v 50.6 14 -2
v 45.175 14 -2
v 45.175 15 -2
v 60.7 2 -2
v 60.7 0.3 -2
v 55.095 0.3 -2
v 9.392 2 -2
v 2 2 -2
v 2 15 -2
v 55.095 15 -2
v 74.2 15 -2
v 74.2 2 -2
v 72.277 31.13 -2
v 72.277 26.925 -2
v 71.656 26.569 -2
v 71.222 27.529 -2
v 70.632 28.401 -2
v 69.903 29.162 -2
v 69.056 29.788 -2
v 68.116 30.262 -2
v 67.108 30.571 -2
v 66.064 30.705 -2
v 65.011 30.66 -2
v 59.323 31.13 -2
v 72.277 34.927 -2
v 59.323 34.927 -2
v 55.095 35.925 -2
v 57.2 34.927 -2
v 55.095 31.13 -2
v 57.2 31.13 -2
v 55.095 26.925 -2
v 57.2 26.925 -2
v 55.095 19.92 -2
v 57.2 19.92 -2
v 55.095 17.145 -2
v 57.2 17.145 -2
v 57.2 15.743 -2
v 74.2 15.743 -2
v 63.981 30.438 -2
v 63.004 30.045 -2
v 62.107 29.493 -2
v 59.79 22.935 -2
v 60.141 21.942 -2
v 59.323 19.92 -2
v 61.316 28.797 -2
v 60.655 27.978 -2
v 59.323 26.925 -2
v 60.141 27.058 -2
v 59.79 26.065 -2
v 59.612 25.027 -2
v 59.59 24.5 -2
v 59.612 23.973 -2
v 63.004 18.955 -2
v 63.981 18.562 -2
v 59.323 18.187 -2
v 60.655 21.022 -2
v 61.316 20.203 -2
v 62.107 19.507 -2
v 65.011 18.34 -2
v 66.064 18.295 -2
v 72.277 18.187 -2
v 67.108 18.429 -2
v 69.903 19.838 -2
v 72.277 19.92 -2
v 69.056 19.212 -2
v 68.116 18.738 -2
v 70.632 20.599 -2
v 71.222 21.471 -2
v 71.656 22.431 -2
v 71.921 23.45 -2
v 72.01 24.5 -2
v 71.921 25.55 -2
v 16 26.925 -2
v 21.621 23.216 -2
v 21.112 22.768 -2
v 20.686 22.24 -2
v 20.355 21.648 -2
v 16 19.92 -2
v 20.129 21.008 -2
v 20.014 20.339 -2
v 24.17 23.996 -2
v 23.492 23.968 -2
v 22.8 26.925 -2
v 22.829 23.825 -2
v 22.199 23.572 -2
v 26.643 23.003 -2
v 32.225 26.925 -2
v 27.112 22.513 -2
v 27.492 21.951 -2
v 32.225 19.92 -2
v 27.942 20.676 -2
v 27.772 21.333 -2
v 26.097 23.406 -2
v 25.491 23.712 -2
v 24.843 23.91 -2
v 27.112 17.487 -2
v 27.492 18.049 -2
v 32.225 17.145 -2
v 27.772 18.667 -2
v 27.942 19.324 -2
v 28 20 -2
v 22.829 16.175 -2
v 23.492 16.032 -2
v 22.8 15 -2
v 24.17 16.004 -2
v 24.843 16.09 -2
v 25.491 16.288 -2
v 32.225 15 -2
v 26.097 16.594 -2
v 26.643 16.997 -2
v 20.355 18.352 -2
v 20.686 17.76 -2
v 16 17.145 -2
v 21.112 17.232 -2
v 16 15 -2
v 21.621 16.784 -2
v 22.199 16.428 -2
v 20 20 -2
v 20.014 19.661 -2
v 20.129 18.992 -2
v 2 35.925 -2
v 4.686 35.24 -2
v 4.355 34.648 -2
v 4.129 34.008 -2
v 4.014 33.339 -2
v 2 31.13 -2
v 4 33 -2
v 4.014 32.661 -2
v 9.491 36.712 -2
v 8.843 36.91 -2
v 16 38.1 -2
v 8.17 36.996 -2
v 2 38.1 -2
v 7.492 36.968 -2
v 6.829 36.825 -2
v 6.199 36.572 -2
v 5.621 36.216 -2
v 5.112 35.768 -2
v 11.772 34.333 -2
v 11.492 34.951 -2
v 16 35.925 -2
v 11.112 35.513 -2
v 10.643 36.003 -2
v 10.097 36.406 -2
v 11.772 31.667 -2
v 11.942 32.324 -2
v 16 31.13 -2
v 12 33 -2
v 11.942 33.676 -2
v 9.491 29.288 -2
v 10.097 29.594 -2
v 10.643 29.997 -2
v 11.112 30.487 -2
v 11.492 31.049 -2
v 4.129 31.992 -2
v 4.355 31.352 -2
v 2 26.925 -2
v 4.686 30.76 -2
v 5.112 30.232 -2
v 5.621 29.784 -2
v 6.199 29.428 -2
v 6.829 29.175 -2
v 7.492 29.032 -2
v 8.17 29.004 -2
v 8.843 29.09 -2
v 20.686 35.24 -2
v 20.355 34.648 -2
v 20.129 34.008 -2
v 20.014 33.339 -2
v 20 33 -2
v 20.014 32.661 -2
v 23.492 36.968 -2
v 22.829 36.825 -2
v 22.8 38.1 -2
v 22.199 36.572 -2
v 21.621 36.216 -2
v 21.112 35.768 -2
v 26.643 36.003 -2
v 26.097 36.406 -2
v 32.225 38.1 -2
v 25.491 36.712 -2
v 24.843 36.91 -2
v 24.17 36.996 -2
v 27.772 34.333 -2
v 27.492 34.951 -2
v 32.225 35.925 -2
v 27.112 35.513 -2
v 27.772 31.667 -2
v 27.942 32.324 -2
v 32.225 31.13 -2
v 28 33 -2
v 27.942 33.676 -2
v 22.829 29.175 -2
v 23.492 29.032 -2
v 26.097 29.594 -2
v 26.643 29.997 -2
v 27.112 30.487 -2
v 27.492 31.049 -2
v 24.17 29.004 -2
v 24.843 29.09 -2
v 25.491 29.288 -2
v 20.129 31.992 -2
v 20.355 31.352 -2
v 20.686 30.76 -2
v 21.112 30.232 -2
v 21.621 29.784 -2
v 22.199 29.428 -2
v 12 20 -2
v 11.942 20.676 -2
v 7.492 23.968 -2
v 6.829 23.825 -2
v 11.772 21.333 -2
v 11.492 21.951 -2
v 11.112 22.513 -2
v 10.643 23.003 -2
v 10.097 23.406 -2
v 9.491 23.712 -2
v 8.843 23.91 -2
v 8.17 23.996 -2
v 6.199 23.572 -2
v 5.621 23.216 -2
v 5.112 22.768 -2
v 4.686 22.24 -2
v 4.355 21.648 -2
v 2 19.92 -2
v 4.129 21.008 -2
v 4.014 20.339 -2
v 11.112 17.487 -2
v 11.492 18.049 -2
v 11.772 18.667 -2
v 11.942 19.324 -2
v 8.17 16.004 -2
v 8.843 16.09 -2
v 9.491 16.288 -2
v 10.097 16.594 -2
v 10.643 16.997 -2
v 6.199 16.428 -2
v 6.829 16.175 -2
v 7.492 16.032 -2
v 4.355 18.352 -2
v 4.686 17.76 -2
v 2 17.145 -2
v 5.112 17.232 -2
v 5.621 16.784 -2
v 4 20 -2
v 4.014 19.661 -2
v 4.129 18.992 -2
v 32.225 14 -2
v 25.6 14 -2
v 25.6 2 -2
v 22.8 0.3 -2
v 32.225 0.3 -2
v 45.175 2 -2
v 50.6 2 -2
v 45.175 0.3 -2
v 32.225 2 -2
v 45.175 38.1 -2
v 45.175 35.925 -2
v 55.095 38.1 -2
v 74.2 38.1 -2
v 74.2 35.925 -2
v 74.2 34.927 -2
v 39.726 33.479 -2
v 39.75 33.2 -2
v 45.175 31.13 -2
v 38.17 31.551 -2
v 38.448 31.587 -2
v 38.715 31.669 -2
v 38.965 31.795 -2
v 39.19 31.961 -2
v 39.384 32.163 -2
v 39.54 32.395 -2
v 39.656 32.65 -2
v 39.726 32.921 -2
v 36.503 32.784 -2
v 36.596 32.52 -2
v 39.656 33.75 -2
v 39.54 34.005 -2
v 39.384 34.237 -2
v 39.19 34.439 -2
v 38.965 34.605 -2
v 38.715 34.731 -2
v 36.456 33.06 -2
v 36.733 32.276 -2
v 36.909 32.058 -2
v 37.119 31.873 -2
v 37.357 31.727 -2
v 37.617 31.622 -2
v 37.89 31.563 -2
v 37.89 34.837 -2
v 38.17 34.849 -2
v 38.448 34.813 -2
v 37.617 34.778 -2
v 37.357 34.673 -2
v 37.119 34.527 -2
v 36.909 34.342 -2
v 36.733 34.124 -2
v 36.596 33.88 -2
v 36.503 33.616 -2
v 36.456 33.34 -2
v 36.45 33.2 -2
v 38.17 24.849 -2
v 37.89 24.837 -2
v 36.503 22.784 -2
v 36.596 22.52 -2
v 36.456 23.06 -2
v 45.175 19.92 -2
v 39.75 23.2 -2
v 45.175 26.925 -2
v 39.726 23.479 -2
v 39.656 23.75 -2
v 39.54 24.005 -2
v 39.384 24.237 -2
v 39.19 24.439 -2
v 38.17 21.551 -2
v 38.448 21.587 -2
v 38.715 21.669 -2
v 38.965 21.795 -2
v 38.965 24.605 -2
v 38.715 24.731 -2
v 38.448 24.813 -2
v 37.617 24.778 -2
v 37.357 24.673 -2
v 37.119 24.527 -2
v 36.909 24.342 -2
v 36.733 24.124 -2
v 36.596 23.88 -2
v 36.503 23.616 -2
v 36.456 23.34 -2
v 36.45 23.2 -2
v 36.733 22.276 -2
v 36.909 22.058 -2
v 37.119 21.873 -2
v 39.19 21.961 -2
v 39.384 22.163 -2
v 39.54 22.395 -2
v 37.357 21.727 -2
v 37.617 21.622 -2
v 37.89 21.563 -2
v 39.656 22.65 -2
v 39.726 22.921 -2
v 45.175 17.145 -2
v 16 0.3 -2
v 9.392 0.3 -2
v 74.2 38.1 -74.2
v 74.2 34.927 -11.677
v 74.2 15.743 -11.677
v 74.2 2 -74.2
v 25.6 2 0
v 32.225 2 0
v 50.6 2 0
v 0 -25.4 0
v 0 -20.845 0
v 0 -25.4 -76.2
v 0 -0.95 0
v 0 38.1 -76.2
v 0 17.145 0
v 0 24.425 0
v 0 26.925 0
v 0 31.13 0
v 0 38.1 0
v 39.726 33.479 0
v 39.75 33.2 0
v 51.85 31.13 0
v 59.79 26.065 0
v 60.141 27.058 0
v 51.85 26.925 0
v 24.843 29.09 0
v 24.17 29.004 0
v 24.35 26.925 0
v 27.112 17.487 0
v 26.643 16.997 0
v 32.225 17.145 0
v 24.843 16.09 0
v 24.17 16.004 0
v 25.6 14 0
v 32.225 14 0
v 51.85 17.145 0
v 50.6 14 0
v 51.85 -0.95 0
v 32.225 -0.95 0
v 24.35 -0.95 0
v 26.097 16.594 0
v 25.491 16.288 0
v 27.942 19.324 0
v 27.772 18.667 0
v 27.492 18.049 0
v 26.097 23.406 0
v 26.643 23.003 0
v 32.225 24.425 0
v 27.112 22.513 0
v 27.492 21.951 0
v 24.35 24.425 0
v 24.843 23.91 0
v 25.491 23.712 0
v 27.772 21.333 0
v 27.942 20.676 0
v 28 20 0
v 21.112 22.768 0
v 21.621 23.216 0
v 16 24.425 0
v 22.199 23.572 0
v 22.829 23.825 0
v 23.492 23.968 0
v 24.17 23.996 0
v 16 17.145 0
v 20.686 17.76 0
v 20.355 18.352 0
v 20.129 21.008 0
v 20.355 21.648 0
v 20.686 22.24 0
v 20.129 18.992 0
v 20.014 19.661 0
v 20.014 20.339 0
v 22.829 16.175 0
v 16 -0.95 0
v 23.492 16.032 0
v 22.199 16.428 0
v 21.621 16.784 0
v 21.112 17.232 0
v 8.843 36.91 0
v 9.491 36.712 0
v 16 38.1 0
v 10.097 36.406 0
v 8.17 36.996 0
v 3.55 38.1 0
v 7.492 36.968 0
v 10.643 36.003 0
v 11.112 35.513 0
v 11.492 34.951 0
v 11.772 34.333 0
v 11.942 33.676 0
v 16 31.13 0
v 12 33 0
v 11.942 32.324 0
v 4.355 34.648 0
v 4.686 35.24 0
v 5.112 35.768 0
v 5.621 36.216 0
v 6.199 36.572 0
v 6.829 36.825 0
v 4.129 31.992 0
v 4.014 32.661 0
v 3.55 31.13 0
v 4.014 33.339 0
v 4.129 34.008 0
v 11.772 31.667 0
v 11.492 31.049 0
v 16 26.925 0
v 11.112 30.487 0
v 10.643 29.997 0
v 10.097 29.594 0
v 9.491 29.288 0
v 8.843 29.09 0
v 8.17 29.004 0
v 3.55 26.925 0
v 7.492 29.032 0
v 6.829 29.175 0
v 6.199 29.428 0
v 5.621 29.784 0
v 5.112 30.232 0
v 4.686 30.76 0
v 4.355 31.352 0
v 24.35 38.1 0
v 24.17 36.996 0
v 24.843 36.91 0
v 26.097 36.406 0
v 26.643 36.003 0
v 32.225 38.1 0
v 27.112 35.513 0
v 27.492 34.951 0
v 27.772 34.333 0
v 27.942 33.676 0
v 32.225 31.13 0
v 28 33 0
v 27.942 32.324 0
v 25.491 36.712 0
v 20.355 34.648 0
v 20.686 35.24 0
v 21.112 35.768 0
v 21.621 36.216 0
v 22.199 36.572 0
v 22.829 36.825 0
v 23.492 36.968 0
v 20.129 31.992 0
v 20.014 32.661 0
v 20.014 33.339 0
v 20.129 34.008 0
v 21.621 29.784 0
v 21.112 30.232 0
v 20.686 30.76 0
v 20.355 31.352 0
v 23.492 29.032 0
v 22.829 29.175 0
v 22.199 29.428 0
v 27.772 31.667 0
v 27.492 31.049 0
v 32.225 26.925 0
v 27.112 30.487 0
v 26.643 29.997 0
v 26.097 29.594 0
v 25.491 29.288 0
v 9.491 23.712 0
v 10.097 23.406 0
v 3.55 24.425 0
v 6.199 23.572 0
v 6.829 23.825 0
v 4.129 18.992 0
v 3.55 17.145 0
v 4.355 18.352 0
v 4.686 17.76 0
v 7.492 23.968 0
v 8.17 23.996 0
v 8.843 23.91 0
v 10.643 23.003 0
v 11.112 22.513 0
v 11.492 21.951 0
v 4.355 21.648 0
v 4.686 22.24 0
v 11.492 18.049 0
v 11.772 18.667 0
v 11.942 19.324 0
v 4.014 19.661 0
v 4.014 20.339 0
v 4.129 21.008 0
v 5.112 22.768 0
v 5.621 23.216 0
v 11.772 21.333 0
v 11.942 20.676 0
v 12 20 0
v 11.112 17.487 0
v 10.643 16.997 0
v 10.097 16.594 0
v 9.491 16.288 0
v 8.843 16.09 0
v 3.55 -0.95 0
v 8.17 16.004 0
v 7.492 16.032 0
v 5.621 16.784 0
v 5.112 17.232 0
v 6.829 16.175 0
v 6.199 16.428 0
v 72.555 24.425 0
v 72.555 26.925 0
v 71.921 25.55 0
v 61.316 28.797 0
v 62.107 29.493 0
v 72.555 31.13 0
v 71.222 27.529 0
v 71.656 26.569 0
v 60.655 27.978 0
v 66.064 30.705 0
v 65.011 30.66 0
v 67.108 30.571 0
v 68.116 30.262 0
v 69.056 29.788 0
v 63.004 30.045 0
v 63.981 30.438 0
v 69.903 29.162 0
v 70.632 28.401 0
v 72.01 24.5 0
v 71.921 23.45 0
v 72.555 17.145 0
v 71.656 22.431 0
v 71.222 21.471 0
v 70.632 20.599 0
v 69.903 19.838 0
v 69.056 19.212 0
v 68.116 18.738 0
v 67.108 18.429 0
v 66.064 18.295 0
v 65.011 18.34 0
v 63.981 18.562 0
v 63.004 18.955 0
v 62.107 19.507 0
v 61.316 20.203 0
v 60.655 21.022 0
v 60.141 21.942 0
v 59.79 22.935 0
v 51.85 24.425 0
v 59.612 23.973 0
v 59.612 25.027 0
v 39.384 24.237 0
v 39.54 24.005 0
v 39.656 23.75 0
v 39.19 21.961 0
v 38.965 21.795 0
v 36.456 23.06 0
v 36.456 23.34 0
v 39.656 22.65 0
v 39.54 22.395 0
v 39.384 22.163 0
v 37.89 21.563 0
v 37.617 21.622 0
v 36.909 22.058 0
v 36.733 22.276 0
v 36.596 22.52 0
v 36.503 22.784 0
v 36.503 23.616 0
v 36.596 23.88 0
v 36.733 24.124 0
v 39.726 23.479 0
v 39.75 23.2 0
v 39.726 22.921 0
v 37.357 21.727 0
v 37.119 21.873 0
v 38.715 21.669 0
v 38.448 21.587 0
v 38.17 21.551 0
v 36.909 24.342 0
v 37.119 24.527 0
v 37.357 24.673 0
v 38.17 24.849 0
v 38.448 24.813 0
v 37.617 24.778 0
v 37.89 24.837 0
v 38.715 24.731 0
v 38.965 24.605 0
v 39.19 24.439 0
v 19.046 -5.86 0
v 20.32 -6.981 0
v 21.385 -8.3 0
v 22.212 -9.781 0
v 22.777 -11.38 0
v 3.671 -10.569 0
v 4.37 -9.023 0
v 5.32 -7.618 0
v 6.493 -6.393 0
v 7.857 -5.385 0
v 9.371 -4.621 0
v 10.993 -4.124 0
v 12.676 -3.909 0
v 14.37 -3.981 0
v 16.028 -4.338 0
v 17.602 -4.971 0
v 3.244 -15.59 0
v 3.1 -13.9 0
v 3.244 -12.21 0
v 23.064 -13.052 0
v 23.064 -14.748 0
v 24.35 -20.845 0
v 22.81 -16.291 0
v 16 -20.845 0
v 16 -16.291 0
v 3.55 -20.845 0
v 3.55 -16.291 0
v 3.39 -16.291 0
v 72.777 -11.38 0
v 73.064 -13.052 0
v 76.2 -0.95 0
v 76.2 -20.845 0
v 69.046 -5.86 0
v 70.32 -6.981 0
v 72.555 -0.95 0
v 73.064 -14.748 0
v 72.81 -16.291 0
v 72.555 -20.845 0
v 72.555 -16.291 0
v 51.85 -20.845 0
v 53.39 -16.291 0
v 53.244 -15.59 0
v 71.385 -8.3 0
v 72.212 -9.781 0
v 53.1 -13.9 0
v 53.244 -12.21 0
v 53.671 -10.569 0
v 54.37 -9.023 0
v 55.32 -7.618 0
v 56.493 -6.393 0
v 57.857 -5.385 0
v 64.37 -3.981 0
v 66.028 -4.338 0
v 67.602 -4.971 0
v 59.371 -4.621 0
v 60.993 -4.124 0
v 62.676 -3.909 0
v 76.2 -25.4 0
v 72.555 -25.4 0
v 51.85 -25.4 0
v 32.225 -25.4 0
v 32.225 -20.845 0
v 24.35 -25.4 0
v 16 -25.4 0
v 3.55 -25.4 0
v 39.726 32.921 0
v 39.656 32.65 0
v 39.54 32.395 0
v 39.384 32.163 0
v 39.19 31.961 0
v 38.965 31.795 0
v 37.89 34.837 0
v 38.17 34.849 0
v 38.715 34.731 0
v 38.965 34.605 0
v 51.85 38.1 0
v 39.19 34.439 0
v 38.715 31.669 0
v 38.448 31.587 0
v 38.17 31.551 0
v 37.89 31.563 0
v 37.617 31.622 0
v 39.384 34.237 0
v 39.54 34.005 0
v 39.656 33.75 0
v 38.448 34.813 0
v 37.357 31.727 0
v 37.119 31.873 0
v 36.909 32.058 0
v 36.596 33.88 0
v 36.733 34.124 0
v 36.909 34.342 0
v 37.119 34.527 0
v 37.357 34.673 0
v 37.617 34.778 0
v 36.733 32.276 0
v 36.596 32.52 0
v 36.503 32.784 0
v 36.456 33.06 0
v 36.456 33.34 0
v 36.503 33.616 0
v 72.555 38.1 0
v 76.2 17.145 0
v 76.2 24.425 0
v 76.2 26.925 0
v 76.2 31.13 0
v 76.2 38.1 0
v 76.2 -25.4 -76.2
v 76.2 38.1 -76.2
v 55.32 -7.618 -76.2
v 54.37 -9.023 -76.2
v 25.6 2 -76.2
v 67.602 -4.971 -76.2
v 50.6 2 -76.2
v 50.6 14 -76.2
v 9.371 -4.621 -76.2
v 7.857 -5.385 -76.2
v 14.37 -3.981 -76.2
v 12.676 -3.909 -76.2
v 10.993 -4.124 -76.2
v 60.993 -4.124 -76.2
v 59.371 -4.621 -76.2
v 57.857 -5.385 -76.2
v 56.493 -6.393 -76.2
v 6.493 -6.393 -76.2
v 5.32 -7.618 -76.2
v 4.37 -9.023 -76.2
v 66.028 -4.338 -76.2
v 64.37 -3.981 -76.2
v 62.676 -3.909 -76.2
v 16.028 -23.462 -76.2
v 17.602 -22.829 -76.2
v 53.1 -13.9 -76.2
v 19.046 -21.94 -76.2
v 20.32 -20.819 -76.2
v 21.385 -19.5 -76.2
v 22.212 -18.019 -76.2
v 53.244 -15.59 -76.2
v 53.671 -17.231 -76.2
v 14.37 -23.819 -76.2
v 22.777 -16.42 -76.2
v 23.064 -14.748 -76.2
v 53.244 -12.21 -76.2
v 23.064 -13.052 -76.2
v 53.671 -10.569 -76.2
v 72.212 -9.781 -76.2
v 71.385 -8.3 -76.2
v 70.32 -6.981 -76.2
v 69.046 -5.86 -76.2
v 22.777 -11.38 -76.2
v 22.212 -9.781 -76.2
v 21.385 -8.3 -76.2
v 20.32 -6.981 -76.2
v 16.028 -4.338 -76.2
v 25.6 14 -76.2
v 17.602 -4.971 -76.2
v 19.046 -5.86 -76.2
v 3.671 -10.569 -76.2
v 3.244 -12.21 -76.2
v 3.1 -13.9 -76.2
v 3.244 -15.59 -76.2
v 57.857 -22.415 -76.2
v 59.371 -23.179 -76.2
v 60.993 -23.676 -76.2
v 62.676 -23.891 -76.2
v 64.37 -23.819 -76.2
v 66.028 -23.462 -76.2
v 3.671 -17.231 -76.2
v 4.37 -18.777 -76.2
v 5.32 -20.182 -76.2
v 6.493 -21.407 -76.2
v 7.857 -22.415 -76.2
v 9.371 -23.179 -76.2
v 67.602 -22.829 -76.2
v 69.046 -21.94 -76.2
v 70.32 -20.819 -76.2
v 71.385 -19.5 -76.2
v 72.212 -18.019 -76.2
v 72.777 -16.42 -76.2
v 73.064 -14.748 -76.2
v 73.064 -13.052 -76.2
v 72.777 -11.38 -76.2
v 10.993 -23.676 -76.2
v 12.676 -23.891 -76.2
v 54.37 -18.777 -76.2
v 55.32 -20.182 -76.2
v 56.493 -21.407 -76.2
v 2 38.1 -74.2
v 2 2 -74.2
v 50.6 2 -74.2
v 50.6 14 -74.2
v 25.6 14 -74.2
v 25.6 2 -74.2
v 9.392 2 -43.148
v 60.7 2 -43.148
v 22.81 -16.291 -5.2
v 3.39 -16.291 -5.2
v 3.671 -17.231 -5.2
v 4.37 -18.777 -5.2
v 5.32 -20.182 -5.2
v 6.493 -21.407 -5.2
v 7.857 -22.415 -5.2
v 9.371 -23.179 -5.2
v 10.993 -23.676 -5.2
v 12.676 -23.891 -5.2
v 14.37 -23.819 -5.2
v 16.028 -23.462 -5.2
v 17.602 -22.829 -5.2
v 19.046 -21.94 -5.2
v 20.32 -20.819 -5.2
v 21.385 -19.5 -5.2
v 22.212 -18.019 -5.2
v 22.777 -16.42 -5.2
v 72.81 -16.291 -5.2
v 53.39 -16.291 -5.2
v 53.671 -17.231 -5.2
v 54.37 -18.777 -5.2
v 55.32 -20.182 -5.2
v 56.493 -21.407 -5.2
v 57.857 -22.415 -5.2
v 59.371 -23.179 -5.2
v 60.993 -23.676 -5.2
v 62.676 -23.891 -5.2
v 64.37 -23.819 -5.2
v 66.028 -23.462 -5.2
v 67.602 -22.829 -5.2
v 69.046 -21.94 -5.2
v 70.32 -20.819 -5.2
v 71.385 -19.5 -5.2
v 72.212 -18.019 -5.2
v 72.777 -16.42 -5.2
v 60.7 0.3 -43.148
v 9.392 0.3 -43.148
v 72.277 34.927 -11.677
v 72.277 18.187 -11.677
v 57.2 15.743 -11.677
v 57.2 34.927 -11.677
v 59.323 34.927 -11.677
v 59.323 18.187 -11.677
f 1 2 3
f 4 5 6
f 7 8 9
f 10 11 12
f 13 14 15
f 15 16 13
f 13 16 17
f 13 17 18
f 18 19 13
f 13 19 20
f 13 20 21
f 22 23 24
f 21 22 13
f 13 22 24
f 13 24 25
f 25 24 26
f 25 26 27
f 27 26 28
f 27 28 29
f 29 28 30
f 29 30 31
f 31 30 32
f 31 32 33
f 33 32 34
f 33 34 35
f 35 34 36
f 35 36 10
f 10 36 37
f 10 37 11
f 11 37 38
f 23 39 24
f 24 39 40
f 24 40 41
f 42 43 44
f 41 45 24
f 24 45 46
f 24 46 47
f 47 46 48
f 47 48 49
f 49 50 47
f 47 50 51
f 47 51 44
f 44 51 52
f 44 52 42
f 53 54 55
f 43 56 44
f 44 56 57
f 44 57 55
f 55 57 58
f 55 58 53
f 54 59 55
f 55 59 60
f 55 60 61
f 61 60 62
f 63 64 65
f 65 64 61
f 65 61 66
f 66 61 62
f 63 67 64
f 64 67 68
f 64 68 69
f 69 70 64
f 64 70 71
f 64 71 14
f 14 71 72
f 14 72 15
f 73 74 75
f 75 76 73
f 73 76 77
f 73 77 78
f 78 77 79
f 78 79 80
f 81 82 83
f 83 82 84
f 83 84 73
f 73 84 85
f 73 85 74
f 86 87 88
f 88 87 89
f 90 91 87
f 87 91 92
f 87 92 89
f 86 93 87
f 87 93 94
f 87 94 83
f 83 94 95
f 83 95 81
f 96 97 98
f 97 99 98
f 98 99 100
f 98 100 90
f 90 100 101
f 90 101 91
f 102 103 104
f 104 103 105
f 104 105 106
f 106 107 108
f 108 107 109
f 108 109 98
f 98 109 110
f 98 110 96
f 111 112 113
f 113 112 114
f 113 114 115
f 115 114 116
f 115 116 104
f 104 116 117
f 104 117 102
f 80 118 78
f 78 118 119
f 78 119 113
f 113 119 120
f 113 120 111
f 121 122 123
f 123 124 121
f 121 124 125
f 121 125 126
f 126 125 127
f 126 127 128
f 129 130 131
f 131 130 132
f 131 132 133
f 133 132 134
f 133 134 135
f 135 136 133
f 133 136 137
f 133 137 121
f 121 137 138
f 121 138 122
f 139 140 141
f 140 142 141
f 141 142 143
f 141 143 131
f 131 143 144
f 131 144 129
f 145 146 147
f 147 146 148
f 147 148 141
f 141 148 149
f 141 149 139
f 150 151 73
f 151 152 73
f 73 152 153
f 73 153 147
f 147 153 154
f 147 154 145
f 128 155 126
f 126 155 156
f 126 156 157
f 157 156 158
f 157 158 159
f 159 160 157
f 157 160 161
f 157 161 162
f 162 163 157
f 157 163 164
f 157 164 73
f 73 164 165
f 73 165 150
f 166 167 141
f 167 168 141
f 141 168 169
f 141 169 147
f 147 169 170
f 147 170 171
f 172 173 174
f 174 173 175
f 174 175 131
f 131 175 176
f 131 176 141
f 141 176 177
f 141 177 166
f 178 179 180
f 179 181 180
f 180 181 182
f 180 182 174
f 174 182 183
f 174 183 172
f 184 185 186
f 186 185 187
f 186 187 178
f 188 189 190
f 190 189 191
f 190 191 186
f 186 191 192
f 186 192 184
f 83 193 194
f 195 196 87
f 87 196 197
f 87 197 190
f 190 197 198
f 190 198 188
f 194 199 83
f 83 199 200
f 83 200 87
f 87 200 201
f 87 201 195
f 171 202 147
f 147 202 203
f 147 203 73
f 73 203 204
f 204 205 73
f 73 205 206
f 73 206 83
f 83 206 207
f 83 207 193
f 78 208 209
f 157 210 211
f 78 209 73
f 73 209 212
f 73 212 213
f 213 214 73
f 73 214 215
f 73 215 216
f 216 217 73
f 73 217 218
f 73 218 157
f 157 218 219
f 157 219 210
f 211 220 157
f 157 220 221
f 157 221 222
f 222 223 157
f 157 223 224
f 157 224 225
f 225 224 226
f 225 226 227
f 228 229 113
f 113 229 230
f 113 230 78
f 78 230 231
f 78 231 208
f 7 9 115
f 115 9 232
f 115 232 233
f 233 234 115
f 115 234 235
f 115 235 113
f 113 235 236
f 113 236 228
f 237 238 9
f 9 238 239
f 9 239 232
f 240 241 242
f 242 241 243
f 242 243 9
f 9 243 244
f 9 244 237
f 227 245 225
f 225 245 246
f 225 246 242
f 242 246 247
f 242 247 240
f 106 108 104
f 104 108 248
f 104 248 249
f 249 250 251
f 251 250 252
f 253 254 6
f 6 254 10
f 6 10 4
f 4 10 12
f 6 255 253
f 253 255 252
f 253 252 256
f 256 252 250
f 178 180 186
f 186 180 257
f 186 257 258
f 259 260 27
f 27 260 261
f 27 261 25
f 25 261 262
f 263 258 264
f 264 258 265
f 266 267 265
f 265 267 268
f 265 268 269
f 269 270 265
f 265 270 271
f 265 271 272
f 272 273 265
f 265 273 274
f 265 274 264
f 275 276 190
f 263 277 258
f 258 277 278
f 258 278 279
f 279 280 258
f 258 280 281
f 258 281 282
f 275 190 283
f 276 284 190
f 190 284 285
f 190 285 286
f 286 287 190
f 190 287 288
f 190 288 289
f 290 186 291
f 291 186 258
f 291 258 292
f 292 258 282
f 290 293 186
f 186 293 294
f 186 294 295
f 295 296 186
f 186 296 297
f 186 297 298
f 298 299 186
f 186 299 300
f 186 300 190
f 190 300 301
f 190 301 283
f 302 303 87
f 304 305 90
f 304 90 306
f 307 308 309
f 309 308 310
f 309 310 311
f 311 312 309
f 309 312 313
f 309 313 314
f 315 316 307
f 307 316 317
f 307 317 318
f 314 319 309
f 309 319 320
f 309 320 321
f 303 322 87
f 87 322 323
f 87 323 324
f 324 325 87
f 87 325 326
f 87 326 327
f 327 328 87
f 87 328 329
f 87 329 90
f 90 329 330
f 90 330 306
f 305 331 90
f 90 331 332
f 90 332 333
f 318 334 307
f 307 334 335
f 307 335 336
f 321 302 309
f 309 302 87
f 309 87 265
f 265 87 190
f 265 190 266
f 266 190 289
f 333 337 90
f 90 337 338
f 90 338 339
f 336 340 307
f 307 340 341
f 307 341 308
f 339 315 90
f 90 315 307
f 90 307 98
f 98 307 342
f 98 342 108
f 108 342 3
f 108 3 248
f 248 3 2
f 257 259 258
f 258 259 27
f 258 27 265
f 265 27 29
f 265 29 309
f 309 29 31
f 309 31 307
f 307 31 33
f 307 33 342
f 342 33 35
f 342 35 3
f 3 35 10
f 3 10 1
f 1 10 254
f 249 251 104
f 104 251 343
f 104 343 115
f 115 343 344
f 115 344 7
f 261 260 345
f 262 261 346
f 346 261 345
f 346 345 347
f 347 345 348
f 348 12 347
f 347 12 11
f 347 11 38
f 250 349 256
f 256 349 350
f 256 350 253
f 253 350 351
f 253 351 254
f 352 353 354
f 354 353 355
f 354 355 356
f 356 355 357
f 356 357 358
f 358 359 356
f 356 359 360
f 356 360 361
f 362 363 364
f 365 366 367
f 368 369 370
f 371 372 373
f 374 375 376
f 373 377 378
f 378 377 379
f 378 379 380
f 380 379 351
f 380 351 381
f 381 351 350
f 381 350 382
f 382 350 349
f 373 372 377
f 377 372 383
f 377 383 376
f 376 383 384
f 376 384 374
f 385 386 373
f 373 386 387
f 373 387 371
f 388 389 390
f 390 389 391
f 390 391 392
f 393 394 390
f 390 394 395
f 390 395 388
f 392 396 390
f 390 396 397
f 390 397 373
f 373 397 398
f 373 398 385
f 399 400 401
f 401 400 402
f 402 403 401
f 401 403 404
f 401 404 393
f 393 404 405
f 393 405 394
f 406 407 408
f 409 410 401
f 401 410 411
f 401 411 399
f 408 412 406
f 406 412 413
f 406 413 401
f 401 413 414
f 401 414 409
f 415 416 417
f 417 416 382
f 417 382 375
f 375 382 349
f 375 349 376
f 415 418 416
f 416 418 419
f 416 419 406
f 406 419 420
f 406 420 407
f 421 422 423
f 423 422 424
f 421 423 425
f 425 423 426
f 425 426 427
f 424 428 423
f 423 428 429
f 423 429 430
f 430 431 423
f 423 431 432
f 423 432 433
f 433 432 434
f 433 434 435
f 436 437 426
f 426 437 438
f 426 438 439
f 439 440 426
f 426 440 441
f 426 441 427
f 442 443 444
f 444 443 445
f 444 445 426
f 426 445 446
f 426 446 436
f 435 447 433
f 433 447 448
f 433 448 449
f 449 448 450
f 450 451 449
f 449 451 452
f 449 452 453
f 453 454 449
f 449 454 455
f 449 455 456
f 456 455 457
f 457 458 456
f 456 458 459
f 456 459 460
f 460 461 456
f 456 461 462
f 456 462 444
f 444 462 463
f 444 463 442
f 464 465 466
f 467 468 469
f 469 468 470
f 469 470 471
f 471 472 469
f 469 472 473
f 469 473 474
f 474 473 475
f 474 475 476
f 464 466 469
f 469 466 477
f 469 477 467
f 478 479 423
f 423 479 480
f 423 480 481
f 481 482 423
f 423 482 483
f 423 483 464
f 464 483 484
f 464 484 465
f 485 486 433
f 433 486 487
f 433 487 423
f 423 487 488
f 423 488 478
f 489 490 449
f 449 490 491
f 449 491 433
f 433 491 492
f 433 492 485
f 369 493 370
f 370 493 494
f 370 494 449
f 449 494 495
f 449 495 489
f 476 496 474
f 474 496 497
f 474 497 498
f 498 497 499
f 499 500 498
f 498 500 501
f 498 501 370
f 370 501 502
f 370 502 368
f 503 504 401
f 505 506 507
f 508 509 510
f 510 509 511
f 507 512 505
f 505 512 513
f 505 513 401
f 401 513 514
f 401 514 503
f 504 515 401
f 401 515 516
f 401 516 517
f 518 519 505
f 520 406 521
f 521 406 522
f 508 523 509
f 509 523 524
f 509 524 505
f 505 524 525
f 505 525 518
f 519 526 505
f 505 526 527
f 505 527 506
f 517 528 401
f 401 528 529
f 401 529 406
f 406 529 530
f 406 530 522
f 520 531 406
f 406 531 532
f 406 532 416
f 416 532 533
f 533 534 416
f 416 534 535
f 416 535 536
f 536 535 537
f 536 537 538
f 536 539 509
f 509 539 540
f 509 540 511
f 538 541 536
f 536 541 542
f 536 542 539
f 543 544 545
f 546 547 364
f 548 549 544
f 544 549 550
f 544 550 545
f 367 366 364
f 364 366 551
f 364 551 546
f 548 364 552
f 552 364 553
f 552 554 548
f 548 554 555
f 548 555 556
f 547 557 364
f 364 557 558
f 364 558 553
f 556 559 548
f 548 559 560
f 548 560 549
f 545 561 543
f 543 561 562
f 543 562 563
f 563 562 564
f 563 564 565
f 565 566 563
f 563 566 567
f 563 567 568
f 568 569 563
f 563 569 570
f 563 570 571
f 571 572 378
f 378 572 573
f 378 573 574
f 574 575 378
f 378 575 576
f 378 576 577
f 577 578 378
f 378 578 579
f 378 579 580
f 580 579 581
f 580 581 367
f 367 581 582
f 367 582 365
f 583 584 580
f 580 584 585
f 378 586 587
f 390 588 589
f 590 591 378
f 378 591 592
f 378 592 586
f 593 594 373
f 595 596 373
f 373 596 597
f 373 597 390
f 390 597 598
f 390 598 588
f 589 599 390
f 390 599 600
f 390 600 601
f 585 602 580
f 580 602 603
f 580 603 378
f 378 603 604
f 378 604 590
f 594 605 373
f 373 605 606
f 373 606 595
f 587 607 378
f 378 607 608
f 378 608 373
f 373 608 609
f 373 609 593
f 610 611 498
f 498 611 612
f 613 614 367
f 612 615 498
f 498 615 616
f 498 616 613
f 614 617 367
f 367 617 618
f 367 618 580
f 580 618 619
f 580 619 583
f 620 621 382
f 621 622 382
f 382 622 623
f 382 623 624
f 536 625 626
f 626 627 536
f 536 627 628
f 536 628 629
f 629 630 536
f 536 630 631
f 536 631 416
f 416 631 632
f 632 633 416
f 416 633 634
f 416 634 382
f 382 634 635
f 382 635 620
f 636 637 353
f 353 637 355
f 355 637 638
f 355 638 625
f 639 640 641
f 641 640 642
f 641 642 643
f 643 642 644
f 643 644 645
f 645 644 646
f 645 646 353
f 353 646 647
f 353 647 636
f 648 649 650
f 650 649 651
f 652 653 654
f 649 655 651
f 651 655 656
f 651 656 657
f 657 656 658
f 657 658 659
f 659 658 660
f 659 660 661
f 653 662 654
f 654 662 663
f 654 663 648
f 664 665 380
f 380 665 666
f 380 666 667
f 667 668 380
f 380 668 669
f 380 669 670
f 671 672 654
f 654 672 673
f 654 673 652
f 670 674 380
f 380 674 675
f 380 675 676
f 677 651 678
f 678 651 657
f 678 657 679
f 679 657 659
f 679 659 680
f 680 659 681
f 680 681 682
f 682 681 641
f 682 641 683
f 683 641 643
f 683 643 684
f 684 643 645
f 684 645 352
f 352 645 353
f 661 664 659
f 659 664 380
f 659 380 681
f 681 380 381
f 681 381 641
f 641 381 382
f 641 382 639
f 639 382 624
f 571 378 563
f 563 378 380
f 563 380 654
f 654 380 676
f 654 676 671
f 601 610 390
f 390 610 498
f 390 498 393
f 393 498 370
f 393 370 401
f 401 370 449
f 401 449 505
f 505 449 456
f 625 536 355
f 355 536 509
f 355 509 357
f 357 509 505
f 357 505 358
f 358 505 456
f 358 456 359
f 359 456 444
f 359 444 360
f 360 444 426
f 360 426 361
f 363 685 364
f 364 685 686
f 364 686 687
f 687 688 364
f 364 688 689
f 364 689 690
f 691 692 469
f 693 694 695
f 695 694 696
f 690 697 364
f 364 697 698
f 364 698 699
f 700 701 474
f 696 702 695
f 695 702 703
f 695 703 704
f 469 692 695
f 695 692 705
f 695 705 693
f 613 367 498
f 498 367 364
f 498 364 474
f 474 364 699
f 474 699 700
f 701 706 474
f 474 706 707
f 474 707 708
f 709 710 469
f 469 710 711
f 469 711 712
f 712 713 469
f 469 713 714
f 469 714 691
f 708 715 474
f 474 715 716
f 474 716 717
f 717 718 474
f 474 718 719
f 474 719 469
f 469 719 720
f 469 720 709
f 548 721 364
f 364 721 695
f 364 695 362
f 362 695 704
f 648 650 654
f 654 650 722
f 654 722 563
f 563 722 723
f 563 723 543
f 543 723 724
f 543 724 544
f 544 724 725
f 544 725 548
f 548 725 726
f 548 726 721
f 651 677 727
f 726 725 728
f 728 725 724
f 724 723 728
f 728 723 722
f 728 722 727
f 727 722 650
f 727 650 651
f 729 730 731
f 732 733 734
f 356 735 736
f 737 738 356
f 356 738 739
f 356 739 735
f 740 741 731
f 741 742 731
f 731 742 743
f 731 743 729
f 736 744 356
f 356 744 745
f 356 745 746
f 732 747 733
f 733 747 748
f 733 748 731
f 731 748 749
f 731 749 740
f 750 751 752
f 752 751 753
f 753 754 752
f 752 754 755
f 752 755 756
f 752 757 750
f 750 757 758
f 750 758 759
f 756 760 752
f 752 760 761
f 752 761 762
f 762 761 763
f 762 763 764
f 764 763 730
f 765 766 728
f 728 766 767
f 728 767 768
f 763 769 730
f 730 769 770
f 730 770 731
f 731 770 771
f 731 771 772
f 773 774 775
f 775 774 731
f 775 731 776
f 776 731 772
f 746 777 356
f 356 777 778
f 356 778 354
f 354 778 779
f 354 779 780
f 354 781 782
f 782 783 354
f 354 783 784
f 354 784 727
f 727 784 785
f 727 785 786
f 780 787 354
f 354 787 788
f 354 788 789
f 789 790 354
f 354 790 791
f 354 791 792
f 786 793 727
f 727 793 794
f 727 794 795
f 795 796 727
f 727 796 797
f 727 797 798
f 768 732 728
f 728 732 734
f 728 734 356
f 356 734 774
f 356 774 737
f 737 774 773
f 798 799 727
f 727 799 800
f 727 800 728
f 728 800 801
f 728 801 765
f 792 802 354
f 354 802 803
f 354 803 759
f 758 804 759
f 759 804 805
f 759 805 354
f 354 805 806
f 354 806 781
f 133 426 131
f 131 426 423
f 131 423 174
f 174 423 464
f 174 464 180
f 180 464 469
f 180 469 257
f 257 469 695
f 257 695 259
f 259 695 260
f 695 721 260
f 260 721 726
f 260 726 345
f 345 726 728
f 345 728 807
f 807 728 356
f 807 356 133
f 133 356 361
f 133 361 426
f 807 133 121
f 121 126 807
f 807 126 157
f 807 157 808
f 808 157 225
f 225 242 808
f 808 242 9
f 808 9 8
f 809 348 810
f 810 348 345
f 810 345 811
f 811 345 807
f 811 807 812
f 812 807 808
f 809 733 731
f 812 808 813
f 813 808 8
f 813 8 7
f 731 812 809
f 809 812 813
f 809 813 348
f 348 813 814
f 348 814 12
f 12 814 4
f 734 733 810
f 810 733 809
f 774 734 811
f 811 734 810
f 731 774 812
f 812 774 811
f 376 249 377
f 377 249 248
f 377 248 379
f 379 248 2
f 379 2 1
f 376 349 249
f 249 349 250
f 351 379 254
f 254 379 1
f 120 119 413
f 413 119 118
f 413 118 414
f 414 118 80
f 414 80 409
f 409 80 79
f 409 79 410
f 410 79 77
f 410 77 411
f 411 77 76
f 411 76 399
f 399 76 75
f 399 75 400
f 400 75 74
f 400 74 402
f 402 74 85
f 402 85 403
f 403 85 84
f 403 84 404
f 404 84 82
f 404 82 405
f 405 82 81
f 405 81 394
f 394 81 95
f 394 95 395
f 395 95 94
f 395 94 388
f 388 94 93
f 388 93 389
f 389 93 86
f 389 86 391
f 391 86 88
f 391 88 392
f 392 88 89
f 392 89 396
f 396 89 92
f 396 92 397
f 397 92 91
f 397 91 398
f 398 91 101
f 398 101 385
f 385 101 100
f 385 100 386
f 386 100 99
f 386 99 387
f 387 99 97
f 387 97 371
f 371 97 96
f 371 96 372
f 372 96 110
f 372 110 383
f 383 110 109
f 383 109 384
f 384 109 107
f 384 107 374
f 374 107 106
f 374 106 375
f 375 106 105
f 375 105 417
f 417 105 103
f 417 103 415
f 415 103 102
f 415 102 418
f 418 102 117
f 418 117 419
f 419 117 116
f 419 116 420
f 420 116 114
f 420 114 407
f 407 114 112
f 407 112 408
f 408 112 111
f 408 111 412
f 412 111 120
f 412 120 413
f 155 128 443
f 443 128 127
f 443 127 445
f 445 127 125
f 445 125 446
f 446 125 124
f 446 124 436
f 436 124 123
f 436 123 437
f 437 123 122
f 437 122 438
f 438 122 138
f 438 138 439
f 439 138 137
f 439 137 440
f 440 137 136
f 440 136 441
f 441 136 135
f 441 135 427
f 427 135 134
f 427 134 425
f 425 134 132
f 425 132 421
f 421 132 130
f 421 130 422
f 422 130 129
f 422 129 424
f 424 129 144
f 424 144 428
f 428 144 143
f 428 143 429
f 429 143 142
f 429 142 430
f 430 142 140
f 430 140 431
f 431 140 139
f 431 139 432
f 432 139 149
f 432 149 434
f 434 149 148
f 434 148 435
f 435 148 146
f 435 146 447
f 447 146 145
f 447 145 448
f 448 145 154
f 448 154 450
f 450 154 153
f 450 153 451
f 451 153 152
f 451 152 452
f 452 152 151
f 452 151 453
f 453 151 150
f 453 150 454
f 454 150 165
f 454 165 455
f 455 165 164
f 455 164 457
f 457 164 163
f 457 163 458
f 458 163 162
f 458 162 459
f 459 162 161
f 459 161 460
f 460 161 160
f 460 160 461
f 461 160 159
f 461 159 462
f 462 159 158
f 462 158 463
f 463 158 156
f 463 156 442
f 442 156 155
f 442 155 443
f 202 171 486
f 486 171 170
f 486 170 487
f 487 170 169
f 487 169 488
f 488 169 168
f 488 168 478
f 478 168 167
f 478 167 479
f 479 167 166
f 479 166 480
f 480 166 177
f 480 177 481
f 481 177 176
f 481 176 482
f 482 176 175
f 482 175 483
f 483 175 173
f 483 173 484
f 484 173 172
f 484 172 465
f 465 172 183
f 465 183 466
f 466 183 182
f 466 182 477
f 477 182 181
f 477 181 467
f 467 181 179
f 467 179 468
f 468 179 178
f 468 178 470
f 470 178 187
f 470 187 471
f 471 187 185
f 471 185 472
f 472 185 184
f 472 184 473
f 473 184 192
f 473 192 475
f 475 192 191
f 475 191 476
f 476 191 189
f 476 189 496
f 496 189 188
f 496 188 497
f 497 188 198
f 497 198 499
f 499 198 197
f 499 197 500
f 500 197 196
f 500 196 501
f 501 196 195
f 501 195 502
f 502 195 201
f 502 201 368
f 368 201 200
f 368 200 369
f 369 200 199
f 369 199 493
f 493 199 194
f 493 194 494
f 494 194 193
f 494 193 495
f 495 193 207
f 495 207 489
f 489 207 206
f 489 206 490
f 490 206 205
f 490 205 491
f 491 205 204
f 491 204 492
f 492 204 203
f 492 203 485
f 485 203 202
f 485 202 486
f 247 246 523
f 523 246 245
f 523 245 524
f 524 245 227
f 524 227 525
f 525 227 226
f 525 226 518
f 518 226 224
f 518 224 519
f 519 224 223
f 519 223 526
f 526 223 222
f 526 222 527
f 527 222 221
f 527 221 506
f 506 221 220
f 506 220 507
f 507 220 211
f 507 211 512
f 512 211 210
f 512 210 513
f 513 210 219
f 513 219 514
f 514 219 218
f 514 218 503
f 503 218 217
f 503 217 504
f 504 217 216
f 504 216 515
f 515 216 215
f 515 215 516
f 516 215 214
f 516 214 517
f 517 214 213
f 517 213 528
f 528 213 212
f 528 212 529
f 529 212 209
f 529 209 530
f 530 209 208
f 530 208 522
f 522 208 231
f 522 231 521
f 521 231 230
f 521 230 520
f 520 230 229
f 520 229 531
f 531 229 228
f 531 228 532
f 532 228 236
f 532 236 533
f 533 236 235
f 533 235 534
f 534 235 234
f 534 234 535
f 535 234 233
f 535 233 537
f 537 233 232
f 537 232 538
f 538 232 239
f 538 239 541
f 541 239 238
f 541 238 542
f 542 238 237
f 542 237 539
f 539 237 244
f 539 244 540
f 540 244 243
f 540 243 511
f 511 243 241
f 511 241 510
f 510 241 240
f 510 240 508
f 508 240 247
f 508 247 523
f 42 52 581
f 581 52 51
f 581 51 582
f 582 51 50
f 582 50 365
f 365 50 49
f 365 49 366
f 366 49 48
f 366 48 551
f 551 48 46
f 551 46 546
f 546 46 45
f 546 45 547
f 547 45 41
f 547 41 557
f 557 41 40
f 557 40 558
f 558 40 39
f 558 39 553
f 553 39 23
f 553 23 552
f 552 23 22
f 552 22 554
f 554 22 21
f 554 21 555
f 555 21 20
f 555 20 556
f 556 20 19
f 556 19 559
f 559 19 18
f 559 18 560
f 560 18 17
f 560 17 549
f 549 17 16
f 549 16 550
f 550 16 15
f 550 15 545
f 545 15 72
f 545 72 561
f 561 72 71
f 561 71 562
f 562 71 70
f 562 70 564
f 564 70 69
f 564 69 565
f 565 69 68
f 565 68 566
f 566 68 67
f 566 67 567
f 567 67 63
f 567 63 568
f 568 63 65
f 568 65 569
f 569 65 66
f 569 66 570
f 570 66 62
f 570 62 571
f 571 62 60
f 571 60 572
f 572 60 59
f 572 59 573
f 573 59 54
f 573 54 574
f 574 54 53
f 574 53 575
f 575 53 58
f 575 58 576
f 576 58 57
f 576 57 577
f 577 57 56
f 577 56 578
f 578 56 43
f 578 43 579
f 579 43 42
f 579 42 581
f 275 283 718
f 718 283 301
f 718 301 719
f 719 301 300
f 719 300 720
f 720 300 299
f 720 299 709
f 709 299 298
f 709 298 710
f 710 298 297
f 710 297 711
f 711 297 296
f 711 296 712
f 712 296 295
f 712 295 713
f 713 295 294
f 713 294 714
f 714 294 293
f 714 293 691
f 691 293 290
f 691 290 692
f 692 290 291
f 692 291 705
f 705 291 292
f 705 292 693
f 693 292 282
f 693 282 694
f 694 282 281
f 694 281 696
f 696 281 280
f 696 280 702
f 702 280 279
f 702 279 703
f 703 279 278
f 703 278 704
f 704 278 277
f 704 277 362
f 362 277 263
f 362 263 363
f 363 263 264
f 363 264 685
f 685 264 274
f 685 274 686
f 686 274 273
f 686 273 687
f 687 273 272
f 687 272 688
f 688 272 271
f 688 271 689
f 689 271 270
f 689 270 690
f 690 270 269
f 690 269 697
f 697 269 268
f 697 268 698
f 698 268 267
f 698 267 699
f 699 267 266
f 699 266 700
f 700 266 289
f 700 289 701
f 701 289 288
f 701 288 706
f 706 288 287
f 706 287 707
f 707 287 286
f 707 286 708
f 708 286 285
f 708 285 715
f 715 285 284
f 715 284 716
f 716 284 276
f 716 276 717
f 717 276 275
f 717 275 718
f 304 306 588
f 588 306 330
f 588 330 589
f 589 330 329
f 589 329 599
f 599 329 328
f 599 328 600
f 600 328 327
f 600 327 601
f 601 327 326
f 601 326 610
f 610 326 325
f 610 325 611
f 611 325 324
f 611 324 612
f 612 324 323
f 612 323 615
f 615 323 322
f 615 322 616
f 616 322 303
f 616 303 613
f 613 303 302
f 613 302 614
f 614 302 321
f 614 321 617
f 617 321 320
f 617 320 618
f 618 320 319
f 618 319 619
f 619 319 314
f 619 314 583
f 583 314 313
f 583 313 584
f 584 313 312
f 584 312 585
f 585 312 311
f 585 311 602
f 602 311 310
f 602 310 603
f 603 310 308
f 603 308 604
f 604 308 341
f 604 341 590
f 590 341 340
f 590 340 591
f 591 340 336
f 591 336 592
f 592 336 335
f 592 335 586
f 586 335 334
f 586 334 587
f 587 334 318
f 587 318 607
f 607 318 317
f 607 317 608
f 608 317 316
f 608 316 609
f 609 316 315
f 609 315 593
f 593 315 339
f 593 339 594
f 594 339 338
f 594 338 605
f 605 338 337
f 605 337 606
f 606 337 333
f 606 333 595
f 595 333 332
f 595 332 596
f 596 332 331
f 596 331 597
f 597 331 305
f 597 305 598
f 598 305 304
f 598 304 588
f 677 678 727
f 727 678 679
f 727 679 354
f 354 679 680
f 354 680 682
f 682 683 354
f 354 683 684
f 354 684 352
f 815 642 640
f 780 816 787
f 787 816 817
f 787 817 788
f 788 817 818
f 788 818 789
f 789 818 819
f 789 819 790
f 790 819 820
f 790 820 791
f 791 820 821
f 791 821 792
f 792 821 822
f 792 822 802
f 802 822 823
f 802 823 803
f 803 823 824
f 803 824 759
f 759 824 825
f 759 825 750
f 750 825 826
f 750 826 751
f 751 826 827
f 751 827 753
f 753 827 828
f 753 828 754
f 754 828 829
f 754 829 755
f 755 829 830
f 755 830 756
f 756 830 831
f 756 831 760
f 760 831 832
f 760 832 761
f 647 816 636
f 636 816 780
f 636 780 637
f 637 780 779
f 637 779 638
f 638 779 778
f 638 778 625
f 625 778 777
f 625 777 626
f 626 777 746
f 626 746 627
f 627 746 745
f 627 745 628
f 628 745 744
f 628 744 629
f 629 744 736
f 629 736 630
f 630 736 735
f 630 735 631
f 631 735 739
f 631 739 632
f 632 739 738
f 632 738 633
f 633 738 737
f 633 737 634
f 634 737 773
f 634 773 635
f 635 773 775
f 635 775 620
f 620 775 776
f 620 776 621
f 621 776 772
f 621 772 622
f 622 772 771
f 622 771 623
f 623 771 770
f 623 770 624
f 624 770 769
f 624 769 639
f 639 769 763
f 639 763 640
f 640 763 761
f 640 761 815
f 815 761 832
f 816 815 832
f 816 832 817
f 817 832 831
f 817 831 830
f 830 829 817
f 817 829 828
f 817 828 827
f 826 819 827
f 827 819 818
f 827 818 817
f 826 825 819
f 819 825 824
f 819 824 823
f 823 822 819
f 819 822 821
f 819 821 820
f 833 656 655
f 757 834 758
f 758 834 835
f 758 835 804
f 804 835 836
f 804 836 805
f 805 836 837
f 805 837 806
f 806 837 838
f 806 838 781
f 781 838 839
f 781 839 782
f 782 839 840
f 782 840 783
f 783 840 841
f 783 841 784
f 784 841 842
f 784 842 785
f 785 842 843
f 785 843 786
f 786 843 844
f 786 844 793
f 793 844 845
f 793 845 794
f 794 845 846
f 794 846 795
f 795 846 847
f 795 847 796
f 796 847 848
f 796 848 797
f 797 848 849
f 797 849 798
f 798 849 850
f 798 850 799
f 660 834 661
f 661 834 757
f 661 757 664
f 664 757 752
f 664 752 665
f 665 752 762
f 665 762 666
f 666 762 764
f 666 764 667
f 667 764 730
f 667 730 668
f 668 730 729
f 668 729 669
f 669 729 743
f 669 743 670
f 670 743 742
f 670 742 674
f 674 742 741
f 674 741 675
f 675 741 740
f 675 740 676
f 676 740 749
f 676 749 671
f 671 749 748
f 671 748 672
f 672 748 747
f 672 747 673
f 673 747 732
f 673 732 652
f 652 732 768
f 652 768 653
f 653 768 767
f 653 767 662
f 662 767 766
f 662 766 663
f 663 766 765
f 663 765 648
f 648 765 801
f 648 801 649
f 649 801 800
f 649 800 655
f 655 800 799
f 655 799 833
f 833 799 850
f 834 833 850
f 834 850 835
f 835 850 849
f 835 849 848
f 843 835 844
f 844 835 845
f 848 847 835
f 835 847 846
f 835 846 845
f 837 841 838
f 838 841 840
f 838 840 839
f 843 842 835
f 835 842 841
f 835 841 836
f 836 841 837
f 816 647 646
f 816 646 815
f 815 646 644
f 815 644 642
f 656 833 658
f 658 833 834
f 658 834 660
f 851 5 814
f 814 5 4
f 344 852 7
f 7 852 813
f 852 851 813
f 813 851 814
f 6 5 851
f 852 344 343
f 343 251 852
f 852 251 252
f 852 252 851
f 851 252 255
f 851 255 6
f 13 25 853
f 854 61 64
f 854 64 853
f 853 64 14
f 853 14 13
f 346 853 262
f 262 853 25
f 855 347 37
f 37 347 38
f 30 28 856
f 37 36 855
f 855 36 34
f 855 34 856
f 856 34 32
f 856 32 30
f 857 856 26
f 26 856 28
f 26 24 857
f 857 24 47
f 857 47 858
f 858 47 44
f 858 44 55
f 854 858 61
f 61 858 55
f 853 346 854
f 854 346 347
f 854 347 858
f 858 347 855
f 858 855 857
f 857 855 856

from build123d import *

# Parameters (mm, degrees)
SKETCH1_W           = 76.2
SKETCH1_H           = 76.2
BOSS_EXTRUDE1_DEPTH = 38.1
SHELL1_T            = -2
SKETCH2_W           = 25
SKETCH2_H           = 12
CUT_EXTRUDE1_DEPTH  = 115.3
CUT_EXTRUDE2_REACH  = 116.3
SKETCH3_R           = 4
CUT_EXTRUDE3_REACH  = 116.3
SKETCH4_R           = 6.2103
CUT_EXTRUDE4_REACH  = 116.3
SKETCH6_R           = 1.65
SKETCH1_2_W         = 76.2
SKETCH1_2_H         = 76.2
BOSS_EXTRUDE2_DEPTH = 25.4
SKETCH11_R          = 10
CUT_EXTRUDE6_DEPTH  = 71
CUT_EXTRUDE8_REACH  = 112.901
SKETCH16_W          = 51.308
SKETCH16_H          = 41.148
CUT_EXTRUDE9_DEPTH  = 1.7
BOSS_EXTRUDE3_DEPTH = 9.6774


with BuildPart() as part:
    # Sketch1 → Boss-Extrude1 (new body)
    with BuildSketch(Plane(origin=(0, 0, 0), x_dir=(1, 0, 0), z_dir=(0, 1, 0))):
        with Locations((38.1, 38.1)):
            Rectangle(SKETCH1_W, SKETCH1_H)
    extrude(amount=BOSS_EXTRUDE1_DEPTH)

    # Shell1
    shell1_openings = [part.faces().sort_by_distance(p)[0] for p in [
        (38.1, 38.1, -38.1),
    ]]
    offset(amount=SHELL1_T, openings=shell1_openings, kind=Kind.INTERSECTION)

    # Sketch2 → Cut-Extrude1 (cut, through all)
    with BuildSketch(Plane.XY):
        with Locations((38.1, 8)):
            Rectangle(SKETCH2_W, SKETCH2_H)
    extrude(amount=-CUT_EXTRUDE1_DEPTH, mode=Mode.SUBTRACT)

    # Sketch3 → Cut-Extrude2 (cut, up to next)
    with BuildSketch(Plane.XY, mode=Mode.PRIVATE) as cut_extrude2_sk1:
        with Locations((24, 20)):
            Circle(SKETCH3_R)
    cut_extrude2_tool1 = extrude(cut_extrude2_sk1.sketch, amount=-CUT_EXTRUDE2_REACH, mode=Mode.PRIVATE) & part.part
    # Sketch3 → Cut-Extrude2 (cut, up to next)
    with BuildSketch(Plane.XY, mode=Mode.PRIVATE) as cut_extrude2_sk2:
        with Locations((8, 20)):
            Circle(SKETCH3_R)
    cut_extrude2_tool2 = extrude(cut_extrude2_sk2.sketch, amount=-CUT_EXTRUDE2_REACH, mode=Mode.PRIVATE) & part.part
    # Sketch3 → Cut-Extrude2 (cut, up to next)
    with BuildSketch(Plane.XY, mode=Mode.PRIVATE) as cut_extrude2_sk3:
        with Locations((24, 33)):
            Circle(SKETCH3_R)
    cut_extrude2_tool3 = extrude(cut_extrude2_sk3.sketch, amount=-CUT_EXTRUDE2_REACH, mode=Mode.PRIVATE) & part.part
    # Sketch3 → Cut-Extrude2 (cut, up to next)
    with BuildSketch(Plane.XY, mode=Mode.PRIVATE) as cut_extrude2_sk4:
        with Locations((8, 33)):
            Circle(SKETCH3_R)
    cut_extrude2_tool4 = extrude(cut_extrude2_sk4.sketch, amount=-CUT_EXTRUDE2_REACH, mode=Mode.PRIVATE) & part.part
    add(cut_extrude2_tool1.solids().sort_by_distance((24, 20, 0))[0], mode=Mode.SUBTRACT)
    add(cut_extrude2_tool2.solids().sort_by_distance((8, 20, 0))[0], mode=Mode.SUBTRACT)
    add(cut_extrude2_tool3.solids().sort_by_distance((24, 33, 0))[0], mode=Mode.SUBTRACT)
    add(cut_extrude2_tool4.solids().sort_by_distance((8, 33, 0))[0], mode=Mode.SUBTRACT)

    # Sketch4 → Cut-Extrude3 (cut, up to next)
    with BuildSketch(Plane.XY, mode=Mode.PRIVATE) as cut_extrude3_sk1:
        with Locations((65.8, 24.5)):
            Circle(SKETCH4_R)
    cut_extrude3_tool1 = extrude(cut_extrude3_sk1.sketch, amount=-CUT_EXTRUDE3_REACH, mode=Mode.PRIVATE) & part.part
    add(cut_extrude3_tool1.solids().sort_by_distance((65.8, 24.5, 0))[0], mode=Mode.SUBTRACT)

    # Sketch6 → Cut-Extrude4 (cut, up to next)
    with BuildSketch(Plane.XY, mode=Mode.PRIVATE) as cut_extrude4_sk1:
        with Locations((38.1, 23.2)):
            Circle(SKETCH6_R)
    cut_extrude4_tool1 = extrude(cut_extrude4_sk1.sketch, amount=-CUT_EXTRUDE4_REACH, mode=Mode.PRIVATE) & part.part
    # Sketch6 → Cut-Extrude4 (cut, up to next)
    with BuildSketch(Plane.XY, mode=Mode.PRIVATE) as cut_extrude4_sk2:
        with Locations((38.1, 33.2)):
            Circle(SKETCH6_R)
    cut_extrude4_tool2 = extrude(cut_extrude4_sk2.sketch, amount=-CUT_EXTRUDE4_REACH, mode=Mode.PRIVATE) & part.part
    add(cut_extrude4_tool1.solids().sort_by_distance((38.1, 23.2, 0))[0], mode=Mode.SUBTRACT)
    add(cut_extrude4_tool2.solids().sort_by_distance((38.1, 33.2, 0))[0], mode=Mode.SUBTRACT)

    # Sketch1<2> → Boss-Extrude2 (add)
    with BuildSketch(Plane(origin=(0, 0, 0), x_dir=(1, 0, 0), z_dir=(0, 1, 0))):
        with Locations((38.1, 38.1)):
            Rectangle(SKETCH1_2_W, SKETCH1_2_H)
    extrude(amount=-BOSS_EXTRUDE2_DEPTH)

    # Sketch11 → Cut-Extrude6 (cut)
    with BuildSketch(Plane(origin=(0, 0, -76.2), x_dir=(-1, 0, 0), z_dir=(0, 0, -1))):
        with Locations((-63.1, -13.9)):
            Circle(SKETCH11_R)
        with Locations((-13.1, -13.9)):
            Circle(SKETCH11_R)
    extrude(amount=-CUT_EXTRUDE6_DEPTH, mode=Mode.SUBTRACT)

    # Sketch15 → Cut-Extrude8 (cut, up to next)
    with BuildSketch(Plane(origin=(0, 0, -5.2), x_dir=(-1, 0, 0), z_dir=(0, 0, -1)), mode=Mode.PRIVATE) as cut_extrude8_sk1:
        with BuildLine():
            Line((-72.809962586, -16.290946797), (-53.390037414, -16.290946797))
            ThreePointArc((-53.390037414, -16.290946797), (-63.1, -3.9), (-72.809962586, -16.290946797))
        make_face()
    cut_extrude8_tool1 = extrude(cut_extrude8_sk1.sketch, amount=-CUT_EXTRUDE8_REACH, mode=Mode.PRIVATE) & part.part
    # Sketch15 → Cut-Extrude8 (cut, up to next)
    with BuildSketch(Plane(origin=(0, 0, -5.2), x_dir=(-1, 0, 0), z_dir=(0, 0, -1)), mode=Mode.PRIVATE) as cut_extrude8_sk2:
        with BuildLine():
            Line((-22.809962586, -16.290946797), (-3.390037414, -16.290946797))
            ThreePointArc((-3.390037414, -16.290946797), (-13.1, -3.9), (-22.809962586, -16.290946797))
        make_face()
    cut_extrude8_tool2 = extrude(cut_extrude8_sk2.sketch, amount=-CUT_EXTRUDE8_REACH, mode=Mode.PRIVATE) & part.part
    add(cut_extrude8_tool1.solids().sort_by_distance((63.1, -10.914633, -5.2))[0], mode=Mode.SUBTRACT)
    add(cut_extrude8_tool2.solids().sort_by_distance((13.1, -10.914633, -5.2))[0], mode=Mode.SUBTRACT)

    # Sketch16 → Cut-Extrude9 (cut)
    with BuildSketch(Plane(origin=(0, 2, 0), x_dir=(1, 0, 0), z_dir=(0, 1, 0))):
        with Locations((35.046, 22.574)):
            Rectangle(SKETCH16_W, SKETCH16_H)
    extrude(amount=-CUT_EXTRUDE9_DEPTH, mode=Mode.SUBTRACT)

    # Sketch19 → Boss-Extrude3 (add)
    with BuildSketch(Plane(origin=(0, 0, -2), x_dir=(-1, 0, 0), z_dir=(0, 0, -1))):
        Polygon((-59.323, 34.9267), (-59.323, 18.1867), (-72.277, 18.1867), (-72.277, 34.9267), (-74.2, 34.9267), (-74.2, 15.742753149), (-57.2, 15.742753149), (-57.2, 34.9267), align=None)
    extrude(amount=BOSS_EXTRUDE3_DEPTH)


solid = part.part
